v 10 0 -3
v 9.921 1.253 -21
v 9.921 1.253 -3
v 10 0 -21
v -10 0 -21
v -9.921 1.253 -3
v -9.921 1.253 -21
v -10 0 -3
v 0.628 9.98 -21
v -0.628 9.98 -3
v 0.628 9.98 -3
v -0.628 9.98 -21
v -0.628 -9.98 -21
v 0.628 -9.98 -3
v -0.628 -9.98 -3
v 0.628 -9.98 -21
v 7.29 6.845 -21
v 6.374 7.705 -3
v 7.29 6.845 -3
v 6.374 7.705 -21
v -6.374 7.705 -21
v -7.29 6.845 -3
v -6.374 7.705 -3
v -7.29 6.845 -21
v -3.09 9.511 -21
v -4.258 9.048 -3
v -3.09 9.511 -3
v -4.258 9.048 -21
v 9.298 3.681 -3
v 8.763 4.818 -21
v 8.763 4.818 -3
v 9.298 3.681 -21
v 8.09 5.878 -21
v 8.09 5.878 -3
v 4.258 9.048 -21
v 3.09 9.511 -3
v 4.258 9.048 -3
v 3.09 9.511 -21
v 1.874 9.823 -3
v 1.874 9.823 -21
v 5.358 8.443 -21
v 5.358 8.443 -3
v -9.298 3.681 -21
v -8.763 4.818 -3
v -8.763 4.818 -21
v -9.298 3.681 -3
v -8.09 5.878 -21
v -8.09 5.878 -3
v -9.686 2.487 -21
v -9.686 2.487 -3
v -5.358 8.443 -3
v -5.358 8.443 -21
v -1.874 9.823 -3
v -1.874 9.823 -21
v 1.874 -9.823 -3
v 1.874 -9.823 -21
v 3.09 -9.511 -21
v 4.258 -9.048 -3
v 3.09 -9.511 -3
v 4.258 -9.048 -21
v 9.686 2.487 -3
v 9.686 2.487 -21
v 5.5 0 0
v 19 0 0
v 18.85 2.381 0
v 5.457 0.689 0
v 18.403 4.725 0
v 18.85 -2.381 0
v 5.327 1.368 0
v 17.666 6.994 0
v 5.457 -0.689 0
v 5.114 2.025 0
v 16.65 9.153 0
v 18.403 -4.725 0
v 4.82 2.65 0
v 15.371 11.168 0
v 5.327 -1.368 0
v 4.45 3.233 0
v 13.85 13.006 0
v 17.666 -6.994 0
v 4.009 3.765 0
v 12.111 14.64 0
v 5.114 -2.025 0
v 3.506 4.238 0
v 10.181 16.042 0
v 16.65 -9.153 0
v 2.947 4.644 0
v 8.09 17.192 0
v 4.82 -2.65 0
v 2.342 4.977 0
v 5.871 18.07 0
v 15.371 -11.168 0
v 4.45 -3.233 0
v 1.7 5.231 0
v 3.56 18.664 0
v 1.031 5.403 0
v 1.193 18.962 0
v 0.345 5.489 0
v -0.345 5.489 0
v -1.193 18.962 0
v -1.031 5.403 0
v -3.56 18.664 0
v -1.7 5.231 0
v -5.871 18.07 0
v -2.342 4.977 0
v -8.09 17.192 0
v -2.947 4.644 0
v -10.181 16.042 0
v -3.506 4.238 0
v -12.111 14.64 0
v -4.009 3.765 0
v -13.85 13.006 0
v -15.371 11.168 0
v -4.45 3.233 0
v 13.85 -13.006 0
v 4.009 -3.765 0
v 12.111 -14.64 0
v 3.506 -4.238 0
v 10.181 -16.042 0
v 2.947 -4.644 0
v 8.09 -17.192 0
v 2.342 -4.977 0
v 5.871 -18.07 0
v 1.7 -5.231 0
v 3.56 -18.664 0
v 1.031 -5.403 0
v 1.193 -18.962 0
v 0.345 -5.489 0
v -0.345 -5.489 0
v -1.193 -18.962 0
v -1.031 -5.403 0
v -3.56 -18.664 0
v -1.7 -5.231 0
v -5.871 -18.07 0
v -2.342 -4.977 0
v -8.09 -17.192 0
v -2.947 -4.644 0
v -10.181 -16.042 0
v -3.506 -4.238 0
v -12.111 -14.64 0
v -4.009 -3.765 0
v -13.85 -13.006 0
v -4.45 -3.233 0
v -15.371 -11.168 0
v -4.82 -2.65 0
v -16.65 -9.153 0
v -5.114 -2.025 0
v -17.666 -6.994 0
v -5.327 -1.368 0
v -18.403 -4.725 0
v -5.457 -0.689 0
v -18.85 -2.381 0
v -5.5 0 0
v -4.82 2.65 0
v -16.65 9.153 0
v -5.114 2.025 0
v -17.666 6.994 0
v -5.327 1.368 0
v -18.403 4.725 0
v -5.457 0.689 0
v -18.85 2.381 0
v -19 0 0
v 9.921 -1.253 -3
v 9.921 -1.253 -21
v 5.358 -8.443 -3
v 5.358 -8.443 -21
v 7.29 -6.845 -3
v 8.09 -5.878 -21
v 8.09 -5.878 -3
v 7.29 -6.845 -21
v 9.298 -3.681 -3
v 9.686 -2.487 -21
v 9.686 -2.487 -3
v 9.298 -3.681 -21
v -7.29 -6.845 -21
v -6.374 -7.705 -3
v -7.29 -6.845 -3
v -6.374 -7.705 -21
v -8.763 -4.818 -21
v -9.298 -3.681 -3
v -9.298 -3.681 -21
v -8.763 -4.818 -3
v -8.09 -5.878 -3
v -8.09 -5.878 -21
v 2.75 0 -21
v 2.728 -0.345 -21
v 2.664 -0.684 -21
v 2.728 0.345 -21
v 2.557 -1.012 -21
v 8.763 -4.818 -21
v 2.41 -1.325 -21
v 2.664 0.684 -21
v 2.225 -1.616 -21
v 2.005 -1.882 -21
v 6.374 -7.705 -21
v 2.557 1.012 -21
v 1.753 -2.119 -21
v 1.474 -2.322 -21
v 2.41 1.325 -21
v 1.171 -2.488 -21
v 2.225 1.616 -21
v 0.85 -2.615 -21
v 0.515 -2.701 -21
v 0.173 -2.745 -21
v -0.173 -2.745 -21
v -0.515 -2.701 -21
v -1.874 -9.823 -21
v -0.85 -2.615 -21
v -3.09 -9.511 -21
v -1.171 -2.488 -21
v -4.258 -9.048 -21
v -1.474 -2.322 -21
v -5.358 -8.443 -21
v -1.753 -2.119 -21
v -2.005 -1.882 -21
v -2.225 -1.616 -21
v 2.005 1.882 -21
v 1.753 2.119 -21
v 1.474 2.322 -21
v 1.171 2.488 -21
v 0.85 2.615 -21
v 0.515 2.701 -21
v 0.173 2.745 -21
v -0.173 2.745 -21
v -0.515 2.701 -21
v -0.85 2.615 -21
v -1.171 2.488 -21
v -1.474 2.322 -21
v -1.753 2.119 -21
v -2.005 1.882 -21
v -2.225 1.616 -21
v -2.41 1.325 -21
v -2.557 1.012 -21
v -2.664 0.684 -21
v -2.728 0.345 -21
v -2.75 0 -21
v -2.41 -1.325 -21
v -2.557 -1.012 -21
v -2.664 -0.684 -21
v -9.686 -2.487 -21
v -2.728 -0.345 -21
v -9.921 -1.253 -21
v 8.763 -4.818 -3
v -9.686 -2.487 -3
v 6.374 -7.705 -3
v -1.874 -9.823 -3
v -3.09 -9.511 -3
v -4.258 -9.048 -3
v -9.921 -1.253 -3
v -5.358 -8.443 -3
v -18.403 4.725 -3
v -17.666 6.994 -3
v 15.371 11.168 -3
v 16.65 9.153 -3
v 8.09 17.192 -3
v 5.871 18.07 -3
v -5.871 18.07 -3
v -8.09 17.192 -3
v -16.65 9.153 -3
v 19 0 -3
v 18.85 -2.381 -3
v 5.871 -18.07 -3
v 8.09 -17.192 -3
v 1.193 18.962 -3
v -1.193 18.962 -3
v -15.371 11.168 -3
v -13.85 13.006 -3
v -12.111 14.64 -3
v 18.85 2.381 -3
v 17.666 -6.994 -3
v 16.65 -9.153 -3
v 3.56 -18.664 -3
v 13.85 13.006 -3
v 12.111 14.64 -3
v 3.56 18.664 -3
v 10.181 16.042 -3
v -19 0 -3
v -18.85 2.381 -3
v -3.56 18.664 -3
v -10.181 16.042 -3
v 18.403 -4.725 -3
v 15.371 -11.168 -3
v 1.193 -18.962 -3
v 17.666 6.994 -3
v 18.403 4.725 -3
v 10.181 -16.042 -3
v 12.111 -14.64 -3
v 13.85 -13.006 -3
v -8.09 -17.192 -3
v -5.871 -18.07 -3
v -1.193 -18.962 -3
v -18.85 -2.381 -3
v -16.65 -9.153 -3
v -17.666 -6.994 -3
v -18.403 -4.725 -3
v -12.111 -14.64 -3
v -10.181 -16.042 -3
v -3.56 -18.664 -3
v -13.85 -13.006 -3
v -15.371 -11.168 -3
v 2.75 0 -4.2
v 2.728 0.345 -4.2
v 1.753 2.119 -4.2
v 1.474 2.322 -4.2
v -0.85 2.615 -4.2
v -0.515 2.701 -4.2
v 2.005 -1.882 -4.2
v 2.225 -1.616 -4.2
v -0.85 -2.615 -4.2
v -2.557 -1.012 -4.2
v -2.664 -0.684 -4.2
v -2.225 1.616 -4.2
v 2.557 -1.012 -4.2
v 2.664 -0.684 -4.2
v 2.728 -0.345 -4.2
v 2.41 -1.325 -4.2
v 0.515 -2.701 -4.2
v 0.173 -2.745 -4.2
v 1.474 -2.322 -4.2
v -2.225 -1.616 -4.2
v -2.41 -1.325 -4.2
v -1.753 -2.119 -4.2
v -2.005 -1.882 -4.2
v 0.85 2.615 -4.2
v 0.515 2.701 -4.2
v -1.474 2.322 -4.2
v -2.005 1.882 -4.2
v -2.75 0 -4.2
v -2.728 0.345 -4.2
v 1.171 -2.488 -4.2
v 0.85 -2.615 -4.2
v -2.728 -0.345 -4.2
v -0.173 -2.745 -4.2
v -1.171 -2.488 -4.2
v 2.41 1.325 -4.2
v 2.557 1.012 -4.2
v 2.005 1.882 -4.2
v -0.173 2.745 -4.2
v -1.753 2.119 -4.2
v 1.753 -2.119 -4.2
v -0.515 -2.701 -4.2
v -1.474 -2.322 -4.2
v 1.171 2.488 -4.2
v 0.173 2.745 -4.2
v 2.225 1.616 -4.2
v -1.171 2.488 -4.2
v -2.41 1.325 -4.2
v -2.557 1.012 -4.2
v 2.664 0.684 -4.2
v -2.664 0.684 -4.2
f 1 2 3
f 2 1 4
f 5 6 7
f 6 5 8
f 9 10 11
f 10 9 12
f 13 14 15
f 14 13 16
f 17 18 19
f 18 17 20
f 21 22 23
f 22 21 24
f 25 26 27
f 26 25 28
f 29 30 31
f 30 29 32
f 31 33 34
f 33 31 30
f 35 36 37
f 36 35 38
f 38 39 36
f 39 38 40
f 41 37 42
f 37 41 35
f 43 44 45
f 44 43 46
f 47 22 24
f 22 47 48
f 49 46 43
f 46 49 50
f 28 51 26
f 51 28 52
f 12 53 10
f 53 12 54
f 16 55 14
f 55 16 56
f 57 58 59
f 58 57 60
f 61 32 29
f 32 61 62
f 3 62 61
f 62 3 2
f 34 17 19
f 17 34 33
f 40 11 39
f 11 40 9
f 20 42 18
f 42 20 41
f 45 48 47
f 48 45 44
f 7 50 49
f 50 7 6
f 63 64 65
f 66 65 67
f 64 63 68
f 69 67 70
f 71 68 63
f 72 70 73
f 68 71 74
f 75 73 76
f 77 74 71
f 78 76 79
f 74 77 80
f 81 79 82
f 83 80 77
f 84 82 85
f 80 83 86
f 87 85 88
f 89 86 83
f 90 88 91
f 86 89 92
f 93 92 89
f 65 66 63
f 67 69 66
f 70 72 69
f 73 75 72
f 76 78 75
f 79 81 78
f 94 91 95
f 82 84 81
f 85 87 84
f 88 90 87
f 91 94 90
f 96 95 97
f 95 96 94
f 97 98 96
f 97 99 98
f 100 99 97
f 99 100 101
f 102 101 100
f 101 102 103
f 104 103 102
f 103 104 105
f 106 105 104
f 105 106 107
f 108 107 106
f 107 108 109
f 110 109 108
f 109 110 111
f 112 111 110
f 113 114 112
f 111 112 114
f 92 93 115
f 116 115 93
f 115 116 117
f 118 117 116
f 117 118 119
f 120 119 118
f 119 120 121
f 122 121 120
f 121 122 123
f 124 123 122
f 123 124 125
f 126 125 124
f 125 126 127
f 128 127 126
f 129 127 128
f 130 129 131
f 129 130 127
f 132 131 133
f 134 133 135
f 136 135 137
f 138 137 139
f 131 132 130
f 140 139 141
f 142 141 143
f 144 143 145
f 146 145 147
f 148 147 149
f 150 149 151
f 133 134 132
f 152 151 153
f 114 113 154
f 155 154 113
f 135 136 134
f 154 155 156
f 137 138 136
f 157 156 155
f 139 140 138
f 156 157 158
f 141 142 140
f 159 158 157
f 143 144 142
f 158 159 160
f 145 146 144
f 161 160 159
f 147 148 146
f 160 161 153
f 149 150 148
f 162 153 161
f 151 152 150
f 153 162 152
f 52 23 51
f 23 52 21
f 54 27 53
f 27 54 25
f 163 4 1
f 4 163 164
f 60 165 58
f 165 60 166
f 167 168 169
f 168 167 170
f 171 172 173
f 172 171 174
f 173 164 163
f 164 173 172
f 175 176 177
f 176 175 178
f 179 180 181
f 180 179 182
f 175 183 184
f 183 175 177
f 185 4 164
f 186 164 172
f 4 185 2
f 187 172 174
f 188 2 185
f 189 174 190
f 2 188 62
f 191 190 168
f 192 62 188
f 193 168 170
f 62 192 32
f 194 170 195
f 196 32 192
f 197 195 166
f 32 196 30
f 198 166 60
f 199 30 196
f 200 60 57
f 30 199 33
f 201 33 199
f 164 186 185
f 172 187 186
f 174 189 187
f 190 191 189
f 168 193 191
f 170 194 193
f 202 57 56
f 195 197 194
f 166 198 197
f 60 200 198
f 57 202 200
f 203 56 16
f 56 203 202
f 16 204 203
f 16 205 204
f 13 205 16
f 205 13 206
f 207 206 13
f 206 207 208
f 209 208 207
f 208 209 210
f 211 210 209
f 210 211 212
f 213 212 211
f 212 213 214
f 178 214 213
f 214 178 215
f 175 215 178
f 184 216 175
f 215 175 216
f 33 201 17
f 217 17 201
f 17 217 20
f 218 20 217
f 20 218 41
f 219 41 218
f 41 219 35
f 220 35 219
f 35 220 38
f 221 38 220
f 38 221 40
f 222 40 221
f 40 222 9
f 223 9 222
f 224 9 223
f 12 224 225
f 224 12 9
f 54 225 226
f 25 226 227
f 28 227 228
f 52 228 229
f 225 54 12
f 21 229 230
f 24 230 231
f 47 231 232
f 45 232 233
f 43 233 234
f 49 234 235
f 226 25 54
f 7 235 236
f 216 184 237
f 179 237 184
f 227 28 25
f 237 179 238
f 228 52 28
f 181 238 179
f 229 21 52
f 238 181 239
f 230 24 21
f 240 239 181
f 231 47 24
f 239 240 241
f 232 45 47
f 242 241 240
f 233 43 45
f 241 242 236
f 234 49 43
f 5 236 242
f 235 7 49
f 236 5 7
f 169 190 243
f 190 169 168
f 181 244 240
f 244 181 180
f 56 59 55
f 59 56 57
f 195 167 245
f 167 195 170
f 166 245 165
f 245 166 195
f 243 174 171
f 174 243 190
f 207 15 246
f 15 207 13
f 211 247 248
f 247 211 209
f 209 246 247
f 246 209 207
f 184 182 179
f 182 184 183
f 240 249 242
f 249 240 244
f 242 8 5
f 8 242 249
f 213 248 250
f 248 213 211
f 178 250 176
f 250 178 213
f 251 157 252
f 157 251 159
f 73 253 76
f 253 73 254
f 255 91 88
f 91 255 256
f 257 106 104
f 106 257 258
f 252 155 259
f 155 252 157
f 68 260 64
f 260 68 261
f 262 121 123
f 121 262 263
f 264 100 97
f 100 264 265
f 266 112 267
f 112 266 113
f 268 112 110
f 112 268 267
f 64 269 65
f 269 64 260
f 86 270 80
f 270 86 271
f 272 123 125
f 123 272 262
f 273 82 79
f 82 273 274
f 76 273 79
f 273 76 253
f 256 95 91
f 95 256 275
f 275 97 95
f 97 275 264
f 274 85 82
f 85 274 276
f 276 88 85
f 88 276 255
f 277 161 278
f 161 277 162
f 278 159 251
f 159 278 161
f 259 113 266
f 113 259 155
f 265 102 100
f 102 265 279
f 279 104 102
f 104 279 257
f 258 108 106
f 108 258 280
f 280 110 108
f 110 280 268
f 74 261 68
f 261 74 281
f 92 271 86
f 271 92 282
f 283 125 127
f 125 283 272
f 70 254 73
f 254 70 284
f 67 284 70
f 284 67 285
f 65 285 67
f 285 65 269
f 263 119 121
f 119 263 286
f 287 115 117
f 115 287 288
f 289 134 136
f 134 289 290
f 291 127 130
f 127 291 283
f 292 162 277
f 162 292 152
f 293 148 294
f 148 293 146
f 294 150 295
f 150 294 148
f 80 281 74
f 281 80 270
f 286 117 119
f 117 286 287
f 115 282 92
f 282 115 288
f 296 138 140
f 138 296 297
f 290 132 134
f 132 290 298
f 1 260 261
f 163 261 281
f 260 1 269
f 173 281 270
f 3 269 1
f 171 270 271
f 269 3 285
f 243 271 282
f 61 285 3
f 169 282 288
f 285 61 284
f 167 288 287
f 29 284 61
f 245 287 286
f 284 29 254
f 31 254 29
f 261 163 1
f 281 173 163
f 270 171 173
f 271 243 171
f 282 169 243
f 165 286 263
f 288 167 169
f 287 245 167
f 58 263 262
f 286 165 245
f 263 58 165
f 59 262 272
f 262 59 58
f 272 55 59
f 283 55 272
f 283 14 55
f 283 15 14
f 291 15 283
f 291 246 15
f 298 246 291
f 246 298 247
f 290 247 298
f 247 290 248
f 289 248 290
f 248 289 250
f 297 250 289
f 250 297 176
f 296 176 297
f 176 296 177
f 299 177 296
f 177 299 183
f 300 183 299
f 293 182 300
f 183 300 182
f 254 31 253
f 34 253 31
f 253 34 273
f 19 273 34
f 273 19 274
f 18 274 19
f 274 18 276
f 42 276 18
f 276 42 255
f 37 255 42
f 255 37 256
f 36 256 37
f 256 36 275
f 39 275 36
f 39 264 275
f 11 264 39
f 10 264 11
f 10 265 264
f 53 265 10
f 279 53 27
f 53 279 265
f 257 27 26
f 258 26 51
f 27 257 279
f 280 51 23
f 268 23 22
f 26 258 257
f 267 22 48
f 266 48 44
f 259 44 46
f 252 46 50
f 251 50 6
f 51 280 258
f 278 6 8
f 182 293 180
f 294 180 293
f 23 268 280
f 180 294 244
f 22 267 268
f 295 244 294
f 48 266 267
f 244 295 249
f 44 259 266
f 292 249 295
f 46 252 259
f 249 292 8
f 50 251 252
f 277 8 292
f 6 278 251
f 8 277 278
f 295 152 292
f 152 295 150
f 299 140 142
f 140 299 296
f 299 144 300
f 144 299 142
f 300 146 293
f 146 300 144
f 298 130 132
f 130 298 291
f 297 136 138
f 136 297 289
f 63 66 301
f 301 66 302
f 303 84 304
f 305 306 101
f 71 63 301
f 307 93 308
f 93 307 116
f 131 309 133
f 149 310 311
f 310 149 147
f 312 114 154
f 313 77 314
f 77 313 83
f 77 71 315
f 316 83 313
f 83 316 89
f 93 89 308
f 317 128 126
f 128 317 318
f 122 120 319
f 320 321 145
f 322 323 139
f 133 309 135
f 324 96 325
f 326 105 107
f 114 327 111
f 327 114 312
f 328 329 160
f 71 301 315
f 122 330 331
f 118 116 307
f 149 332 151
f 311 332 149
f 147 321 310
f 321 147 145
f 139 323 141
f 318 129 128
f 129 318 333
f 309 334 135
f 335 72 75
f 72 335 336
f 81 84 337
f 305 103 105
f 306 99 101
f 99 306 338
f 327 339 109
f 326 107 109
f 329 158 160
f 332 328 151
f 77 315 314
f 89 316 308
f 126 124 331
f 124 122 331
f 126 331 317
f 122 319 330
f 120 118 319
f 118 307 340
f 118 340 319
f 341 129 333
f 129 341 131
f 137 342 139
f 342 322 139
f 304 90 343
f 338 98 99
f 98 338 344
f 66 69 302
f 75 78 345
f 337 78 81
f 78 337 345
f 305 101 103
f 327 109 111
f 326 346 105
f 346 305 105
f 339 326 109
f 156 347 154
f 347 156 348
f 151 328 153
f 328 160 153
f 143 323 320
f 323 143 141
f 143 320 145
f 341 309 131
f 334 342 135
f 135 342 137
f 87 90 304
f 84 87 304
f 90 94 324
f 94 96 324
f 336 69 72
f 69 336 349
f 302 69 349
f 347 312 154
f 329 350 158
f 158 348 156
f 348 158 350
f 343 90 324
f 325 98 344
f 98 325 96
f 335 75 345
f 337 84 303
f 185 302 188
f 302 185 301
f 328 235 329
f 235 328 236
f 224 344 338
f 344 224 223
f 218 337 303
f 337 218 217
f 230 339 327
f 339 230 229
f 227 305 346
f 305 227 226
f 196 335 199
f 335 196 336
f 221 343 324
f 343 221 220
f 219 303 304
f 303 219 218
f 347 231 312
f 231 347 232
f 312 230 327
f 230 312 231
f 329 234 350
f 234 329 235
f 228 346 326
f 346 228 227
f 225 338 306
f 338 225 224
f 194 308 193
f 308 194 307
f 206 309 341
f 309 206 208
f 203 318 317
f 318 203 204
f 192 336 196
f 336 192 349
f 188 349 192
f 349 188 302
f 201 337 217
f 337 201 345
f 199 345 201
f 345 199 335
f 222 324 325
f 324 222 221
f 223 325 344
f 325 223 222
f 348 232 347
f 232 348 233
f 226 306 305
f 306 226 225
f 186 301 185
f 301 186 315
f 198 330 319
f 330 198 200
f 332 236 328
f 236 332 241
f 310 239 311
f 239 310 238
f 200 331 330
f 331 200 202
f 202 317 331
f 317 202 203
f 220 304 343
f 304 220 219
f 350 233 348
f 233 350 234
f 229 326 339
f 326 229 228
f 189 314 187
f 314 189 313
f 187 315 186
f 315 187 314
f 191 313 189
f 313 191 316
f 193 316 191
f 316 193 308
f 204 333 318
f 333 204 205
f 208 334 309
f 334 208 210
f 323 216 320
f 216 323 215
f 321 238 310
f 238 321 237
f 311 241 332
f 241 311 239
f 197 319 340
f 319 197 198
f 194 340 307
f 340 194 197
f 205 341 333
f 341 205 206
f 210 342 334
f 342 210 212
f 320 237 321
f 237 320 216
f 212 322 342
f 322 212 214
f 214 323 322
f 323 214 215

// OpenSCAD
$fn = 50;


difference() {
	union() {
		translate(v = [0, 0, -21.0000000000]) {
			cylinder(h = 21, r = 10.0000000000);
		}
		translate(v = [0, 0, -3.0000000000]) {
			cylinder(h = 3, r = 19.0000000000);
		}
	}
	union() {
		translate(v = [0, 0, 0]) {
			rotate(a = [0, 0, 0]) {
				difference() {
					union() {
						#translate(v = [0, 0, -21.0000000000]) {
							cylinder(h = 21, r = 2.2500000000);
						}
						#translate(v = [0, 0, -4.2000000000]) {
							cylinder(h = 4.2000000000, r1 = 2.7500000000, r2 = 5.5000000000);
						}
						#translate(v = [0, 0, -21.0000000000]) {
							cylinder(h = 21, r = 2.7500000000);
						}
						#translate(v = [0, 0, -21.0000000000]) {
							cylinder(h = 21, r = 2.2500000000);
						}
					}
					union();
				}
			}
		}
	}
}
